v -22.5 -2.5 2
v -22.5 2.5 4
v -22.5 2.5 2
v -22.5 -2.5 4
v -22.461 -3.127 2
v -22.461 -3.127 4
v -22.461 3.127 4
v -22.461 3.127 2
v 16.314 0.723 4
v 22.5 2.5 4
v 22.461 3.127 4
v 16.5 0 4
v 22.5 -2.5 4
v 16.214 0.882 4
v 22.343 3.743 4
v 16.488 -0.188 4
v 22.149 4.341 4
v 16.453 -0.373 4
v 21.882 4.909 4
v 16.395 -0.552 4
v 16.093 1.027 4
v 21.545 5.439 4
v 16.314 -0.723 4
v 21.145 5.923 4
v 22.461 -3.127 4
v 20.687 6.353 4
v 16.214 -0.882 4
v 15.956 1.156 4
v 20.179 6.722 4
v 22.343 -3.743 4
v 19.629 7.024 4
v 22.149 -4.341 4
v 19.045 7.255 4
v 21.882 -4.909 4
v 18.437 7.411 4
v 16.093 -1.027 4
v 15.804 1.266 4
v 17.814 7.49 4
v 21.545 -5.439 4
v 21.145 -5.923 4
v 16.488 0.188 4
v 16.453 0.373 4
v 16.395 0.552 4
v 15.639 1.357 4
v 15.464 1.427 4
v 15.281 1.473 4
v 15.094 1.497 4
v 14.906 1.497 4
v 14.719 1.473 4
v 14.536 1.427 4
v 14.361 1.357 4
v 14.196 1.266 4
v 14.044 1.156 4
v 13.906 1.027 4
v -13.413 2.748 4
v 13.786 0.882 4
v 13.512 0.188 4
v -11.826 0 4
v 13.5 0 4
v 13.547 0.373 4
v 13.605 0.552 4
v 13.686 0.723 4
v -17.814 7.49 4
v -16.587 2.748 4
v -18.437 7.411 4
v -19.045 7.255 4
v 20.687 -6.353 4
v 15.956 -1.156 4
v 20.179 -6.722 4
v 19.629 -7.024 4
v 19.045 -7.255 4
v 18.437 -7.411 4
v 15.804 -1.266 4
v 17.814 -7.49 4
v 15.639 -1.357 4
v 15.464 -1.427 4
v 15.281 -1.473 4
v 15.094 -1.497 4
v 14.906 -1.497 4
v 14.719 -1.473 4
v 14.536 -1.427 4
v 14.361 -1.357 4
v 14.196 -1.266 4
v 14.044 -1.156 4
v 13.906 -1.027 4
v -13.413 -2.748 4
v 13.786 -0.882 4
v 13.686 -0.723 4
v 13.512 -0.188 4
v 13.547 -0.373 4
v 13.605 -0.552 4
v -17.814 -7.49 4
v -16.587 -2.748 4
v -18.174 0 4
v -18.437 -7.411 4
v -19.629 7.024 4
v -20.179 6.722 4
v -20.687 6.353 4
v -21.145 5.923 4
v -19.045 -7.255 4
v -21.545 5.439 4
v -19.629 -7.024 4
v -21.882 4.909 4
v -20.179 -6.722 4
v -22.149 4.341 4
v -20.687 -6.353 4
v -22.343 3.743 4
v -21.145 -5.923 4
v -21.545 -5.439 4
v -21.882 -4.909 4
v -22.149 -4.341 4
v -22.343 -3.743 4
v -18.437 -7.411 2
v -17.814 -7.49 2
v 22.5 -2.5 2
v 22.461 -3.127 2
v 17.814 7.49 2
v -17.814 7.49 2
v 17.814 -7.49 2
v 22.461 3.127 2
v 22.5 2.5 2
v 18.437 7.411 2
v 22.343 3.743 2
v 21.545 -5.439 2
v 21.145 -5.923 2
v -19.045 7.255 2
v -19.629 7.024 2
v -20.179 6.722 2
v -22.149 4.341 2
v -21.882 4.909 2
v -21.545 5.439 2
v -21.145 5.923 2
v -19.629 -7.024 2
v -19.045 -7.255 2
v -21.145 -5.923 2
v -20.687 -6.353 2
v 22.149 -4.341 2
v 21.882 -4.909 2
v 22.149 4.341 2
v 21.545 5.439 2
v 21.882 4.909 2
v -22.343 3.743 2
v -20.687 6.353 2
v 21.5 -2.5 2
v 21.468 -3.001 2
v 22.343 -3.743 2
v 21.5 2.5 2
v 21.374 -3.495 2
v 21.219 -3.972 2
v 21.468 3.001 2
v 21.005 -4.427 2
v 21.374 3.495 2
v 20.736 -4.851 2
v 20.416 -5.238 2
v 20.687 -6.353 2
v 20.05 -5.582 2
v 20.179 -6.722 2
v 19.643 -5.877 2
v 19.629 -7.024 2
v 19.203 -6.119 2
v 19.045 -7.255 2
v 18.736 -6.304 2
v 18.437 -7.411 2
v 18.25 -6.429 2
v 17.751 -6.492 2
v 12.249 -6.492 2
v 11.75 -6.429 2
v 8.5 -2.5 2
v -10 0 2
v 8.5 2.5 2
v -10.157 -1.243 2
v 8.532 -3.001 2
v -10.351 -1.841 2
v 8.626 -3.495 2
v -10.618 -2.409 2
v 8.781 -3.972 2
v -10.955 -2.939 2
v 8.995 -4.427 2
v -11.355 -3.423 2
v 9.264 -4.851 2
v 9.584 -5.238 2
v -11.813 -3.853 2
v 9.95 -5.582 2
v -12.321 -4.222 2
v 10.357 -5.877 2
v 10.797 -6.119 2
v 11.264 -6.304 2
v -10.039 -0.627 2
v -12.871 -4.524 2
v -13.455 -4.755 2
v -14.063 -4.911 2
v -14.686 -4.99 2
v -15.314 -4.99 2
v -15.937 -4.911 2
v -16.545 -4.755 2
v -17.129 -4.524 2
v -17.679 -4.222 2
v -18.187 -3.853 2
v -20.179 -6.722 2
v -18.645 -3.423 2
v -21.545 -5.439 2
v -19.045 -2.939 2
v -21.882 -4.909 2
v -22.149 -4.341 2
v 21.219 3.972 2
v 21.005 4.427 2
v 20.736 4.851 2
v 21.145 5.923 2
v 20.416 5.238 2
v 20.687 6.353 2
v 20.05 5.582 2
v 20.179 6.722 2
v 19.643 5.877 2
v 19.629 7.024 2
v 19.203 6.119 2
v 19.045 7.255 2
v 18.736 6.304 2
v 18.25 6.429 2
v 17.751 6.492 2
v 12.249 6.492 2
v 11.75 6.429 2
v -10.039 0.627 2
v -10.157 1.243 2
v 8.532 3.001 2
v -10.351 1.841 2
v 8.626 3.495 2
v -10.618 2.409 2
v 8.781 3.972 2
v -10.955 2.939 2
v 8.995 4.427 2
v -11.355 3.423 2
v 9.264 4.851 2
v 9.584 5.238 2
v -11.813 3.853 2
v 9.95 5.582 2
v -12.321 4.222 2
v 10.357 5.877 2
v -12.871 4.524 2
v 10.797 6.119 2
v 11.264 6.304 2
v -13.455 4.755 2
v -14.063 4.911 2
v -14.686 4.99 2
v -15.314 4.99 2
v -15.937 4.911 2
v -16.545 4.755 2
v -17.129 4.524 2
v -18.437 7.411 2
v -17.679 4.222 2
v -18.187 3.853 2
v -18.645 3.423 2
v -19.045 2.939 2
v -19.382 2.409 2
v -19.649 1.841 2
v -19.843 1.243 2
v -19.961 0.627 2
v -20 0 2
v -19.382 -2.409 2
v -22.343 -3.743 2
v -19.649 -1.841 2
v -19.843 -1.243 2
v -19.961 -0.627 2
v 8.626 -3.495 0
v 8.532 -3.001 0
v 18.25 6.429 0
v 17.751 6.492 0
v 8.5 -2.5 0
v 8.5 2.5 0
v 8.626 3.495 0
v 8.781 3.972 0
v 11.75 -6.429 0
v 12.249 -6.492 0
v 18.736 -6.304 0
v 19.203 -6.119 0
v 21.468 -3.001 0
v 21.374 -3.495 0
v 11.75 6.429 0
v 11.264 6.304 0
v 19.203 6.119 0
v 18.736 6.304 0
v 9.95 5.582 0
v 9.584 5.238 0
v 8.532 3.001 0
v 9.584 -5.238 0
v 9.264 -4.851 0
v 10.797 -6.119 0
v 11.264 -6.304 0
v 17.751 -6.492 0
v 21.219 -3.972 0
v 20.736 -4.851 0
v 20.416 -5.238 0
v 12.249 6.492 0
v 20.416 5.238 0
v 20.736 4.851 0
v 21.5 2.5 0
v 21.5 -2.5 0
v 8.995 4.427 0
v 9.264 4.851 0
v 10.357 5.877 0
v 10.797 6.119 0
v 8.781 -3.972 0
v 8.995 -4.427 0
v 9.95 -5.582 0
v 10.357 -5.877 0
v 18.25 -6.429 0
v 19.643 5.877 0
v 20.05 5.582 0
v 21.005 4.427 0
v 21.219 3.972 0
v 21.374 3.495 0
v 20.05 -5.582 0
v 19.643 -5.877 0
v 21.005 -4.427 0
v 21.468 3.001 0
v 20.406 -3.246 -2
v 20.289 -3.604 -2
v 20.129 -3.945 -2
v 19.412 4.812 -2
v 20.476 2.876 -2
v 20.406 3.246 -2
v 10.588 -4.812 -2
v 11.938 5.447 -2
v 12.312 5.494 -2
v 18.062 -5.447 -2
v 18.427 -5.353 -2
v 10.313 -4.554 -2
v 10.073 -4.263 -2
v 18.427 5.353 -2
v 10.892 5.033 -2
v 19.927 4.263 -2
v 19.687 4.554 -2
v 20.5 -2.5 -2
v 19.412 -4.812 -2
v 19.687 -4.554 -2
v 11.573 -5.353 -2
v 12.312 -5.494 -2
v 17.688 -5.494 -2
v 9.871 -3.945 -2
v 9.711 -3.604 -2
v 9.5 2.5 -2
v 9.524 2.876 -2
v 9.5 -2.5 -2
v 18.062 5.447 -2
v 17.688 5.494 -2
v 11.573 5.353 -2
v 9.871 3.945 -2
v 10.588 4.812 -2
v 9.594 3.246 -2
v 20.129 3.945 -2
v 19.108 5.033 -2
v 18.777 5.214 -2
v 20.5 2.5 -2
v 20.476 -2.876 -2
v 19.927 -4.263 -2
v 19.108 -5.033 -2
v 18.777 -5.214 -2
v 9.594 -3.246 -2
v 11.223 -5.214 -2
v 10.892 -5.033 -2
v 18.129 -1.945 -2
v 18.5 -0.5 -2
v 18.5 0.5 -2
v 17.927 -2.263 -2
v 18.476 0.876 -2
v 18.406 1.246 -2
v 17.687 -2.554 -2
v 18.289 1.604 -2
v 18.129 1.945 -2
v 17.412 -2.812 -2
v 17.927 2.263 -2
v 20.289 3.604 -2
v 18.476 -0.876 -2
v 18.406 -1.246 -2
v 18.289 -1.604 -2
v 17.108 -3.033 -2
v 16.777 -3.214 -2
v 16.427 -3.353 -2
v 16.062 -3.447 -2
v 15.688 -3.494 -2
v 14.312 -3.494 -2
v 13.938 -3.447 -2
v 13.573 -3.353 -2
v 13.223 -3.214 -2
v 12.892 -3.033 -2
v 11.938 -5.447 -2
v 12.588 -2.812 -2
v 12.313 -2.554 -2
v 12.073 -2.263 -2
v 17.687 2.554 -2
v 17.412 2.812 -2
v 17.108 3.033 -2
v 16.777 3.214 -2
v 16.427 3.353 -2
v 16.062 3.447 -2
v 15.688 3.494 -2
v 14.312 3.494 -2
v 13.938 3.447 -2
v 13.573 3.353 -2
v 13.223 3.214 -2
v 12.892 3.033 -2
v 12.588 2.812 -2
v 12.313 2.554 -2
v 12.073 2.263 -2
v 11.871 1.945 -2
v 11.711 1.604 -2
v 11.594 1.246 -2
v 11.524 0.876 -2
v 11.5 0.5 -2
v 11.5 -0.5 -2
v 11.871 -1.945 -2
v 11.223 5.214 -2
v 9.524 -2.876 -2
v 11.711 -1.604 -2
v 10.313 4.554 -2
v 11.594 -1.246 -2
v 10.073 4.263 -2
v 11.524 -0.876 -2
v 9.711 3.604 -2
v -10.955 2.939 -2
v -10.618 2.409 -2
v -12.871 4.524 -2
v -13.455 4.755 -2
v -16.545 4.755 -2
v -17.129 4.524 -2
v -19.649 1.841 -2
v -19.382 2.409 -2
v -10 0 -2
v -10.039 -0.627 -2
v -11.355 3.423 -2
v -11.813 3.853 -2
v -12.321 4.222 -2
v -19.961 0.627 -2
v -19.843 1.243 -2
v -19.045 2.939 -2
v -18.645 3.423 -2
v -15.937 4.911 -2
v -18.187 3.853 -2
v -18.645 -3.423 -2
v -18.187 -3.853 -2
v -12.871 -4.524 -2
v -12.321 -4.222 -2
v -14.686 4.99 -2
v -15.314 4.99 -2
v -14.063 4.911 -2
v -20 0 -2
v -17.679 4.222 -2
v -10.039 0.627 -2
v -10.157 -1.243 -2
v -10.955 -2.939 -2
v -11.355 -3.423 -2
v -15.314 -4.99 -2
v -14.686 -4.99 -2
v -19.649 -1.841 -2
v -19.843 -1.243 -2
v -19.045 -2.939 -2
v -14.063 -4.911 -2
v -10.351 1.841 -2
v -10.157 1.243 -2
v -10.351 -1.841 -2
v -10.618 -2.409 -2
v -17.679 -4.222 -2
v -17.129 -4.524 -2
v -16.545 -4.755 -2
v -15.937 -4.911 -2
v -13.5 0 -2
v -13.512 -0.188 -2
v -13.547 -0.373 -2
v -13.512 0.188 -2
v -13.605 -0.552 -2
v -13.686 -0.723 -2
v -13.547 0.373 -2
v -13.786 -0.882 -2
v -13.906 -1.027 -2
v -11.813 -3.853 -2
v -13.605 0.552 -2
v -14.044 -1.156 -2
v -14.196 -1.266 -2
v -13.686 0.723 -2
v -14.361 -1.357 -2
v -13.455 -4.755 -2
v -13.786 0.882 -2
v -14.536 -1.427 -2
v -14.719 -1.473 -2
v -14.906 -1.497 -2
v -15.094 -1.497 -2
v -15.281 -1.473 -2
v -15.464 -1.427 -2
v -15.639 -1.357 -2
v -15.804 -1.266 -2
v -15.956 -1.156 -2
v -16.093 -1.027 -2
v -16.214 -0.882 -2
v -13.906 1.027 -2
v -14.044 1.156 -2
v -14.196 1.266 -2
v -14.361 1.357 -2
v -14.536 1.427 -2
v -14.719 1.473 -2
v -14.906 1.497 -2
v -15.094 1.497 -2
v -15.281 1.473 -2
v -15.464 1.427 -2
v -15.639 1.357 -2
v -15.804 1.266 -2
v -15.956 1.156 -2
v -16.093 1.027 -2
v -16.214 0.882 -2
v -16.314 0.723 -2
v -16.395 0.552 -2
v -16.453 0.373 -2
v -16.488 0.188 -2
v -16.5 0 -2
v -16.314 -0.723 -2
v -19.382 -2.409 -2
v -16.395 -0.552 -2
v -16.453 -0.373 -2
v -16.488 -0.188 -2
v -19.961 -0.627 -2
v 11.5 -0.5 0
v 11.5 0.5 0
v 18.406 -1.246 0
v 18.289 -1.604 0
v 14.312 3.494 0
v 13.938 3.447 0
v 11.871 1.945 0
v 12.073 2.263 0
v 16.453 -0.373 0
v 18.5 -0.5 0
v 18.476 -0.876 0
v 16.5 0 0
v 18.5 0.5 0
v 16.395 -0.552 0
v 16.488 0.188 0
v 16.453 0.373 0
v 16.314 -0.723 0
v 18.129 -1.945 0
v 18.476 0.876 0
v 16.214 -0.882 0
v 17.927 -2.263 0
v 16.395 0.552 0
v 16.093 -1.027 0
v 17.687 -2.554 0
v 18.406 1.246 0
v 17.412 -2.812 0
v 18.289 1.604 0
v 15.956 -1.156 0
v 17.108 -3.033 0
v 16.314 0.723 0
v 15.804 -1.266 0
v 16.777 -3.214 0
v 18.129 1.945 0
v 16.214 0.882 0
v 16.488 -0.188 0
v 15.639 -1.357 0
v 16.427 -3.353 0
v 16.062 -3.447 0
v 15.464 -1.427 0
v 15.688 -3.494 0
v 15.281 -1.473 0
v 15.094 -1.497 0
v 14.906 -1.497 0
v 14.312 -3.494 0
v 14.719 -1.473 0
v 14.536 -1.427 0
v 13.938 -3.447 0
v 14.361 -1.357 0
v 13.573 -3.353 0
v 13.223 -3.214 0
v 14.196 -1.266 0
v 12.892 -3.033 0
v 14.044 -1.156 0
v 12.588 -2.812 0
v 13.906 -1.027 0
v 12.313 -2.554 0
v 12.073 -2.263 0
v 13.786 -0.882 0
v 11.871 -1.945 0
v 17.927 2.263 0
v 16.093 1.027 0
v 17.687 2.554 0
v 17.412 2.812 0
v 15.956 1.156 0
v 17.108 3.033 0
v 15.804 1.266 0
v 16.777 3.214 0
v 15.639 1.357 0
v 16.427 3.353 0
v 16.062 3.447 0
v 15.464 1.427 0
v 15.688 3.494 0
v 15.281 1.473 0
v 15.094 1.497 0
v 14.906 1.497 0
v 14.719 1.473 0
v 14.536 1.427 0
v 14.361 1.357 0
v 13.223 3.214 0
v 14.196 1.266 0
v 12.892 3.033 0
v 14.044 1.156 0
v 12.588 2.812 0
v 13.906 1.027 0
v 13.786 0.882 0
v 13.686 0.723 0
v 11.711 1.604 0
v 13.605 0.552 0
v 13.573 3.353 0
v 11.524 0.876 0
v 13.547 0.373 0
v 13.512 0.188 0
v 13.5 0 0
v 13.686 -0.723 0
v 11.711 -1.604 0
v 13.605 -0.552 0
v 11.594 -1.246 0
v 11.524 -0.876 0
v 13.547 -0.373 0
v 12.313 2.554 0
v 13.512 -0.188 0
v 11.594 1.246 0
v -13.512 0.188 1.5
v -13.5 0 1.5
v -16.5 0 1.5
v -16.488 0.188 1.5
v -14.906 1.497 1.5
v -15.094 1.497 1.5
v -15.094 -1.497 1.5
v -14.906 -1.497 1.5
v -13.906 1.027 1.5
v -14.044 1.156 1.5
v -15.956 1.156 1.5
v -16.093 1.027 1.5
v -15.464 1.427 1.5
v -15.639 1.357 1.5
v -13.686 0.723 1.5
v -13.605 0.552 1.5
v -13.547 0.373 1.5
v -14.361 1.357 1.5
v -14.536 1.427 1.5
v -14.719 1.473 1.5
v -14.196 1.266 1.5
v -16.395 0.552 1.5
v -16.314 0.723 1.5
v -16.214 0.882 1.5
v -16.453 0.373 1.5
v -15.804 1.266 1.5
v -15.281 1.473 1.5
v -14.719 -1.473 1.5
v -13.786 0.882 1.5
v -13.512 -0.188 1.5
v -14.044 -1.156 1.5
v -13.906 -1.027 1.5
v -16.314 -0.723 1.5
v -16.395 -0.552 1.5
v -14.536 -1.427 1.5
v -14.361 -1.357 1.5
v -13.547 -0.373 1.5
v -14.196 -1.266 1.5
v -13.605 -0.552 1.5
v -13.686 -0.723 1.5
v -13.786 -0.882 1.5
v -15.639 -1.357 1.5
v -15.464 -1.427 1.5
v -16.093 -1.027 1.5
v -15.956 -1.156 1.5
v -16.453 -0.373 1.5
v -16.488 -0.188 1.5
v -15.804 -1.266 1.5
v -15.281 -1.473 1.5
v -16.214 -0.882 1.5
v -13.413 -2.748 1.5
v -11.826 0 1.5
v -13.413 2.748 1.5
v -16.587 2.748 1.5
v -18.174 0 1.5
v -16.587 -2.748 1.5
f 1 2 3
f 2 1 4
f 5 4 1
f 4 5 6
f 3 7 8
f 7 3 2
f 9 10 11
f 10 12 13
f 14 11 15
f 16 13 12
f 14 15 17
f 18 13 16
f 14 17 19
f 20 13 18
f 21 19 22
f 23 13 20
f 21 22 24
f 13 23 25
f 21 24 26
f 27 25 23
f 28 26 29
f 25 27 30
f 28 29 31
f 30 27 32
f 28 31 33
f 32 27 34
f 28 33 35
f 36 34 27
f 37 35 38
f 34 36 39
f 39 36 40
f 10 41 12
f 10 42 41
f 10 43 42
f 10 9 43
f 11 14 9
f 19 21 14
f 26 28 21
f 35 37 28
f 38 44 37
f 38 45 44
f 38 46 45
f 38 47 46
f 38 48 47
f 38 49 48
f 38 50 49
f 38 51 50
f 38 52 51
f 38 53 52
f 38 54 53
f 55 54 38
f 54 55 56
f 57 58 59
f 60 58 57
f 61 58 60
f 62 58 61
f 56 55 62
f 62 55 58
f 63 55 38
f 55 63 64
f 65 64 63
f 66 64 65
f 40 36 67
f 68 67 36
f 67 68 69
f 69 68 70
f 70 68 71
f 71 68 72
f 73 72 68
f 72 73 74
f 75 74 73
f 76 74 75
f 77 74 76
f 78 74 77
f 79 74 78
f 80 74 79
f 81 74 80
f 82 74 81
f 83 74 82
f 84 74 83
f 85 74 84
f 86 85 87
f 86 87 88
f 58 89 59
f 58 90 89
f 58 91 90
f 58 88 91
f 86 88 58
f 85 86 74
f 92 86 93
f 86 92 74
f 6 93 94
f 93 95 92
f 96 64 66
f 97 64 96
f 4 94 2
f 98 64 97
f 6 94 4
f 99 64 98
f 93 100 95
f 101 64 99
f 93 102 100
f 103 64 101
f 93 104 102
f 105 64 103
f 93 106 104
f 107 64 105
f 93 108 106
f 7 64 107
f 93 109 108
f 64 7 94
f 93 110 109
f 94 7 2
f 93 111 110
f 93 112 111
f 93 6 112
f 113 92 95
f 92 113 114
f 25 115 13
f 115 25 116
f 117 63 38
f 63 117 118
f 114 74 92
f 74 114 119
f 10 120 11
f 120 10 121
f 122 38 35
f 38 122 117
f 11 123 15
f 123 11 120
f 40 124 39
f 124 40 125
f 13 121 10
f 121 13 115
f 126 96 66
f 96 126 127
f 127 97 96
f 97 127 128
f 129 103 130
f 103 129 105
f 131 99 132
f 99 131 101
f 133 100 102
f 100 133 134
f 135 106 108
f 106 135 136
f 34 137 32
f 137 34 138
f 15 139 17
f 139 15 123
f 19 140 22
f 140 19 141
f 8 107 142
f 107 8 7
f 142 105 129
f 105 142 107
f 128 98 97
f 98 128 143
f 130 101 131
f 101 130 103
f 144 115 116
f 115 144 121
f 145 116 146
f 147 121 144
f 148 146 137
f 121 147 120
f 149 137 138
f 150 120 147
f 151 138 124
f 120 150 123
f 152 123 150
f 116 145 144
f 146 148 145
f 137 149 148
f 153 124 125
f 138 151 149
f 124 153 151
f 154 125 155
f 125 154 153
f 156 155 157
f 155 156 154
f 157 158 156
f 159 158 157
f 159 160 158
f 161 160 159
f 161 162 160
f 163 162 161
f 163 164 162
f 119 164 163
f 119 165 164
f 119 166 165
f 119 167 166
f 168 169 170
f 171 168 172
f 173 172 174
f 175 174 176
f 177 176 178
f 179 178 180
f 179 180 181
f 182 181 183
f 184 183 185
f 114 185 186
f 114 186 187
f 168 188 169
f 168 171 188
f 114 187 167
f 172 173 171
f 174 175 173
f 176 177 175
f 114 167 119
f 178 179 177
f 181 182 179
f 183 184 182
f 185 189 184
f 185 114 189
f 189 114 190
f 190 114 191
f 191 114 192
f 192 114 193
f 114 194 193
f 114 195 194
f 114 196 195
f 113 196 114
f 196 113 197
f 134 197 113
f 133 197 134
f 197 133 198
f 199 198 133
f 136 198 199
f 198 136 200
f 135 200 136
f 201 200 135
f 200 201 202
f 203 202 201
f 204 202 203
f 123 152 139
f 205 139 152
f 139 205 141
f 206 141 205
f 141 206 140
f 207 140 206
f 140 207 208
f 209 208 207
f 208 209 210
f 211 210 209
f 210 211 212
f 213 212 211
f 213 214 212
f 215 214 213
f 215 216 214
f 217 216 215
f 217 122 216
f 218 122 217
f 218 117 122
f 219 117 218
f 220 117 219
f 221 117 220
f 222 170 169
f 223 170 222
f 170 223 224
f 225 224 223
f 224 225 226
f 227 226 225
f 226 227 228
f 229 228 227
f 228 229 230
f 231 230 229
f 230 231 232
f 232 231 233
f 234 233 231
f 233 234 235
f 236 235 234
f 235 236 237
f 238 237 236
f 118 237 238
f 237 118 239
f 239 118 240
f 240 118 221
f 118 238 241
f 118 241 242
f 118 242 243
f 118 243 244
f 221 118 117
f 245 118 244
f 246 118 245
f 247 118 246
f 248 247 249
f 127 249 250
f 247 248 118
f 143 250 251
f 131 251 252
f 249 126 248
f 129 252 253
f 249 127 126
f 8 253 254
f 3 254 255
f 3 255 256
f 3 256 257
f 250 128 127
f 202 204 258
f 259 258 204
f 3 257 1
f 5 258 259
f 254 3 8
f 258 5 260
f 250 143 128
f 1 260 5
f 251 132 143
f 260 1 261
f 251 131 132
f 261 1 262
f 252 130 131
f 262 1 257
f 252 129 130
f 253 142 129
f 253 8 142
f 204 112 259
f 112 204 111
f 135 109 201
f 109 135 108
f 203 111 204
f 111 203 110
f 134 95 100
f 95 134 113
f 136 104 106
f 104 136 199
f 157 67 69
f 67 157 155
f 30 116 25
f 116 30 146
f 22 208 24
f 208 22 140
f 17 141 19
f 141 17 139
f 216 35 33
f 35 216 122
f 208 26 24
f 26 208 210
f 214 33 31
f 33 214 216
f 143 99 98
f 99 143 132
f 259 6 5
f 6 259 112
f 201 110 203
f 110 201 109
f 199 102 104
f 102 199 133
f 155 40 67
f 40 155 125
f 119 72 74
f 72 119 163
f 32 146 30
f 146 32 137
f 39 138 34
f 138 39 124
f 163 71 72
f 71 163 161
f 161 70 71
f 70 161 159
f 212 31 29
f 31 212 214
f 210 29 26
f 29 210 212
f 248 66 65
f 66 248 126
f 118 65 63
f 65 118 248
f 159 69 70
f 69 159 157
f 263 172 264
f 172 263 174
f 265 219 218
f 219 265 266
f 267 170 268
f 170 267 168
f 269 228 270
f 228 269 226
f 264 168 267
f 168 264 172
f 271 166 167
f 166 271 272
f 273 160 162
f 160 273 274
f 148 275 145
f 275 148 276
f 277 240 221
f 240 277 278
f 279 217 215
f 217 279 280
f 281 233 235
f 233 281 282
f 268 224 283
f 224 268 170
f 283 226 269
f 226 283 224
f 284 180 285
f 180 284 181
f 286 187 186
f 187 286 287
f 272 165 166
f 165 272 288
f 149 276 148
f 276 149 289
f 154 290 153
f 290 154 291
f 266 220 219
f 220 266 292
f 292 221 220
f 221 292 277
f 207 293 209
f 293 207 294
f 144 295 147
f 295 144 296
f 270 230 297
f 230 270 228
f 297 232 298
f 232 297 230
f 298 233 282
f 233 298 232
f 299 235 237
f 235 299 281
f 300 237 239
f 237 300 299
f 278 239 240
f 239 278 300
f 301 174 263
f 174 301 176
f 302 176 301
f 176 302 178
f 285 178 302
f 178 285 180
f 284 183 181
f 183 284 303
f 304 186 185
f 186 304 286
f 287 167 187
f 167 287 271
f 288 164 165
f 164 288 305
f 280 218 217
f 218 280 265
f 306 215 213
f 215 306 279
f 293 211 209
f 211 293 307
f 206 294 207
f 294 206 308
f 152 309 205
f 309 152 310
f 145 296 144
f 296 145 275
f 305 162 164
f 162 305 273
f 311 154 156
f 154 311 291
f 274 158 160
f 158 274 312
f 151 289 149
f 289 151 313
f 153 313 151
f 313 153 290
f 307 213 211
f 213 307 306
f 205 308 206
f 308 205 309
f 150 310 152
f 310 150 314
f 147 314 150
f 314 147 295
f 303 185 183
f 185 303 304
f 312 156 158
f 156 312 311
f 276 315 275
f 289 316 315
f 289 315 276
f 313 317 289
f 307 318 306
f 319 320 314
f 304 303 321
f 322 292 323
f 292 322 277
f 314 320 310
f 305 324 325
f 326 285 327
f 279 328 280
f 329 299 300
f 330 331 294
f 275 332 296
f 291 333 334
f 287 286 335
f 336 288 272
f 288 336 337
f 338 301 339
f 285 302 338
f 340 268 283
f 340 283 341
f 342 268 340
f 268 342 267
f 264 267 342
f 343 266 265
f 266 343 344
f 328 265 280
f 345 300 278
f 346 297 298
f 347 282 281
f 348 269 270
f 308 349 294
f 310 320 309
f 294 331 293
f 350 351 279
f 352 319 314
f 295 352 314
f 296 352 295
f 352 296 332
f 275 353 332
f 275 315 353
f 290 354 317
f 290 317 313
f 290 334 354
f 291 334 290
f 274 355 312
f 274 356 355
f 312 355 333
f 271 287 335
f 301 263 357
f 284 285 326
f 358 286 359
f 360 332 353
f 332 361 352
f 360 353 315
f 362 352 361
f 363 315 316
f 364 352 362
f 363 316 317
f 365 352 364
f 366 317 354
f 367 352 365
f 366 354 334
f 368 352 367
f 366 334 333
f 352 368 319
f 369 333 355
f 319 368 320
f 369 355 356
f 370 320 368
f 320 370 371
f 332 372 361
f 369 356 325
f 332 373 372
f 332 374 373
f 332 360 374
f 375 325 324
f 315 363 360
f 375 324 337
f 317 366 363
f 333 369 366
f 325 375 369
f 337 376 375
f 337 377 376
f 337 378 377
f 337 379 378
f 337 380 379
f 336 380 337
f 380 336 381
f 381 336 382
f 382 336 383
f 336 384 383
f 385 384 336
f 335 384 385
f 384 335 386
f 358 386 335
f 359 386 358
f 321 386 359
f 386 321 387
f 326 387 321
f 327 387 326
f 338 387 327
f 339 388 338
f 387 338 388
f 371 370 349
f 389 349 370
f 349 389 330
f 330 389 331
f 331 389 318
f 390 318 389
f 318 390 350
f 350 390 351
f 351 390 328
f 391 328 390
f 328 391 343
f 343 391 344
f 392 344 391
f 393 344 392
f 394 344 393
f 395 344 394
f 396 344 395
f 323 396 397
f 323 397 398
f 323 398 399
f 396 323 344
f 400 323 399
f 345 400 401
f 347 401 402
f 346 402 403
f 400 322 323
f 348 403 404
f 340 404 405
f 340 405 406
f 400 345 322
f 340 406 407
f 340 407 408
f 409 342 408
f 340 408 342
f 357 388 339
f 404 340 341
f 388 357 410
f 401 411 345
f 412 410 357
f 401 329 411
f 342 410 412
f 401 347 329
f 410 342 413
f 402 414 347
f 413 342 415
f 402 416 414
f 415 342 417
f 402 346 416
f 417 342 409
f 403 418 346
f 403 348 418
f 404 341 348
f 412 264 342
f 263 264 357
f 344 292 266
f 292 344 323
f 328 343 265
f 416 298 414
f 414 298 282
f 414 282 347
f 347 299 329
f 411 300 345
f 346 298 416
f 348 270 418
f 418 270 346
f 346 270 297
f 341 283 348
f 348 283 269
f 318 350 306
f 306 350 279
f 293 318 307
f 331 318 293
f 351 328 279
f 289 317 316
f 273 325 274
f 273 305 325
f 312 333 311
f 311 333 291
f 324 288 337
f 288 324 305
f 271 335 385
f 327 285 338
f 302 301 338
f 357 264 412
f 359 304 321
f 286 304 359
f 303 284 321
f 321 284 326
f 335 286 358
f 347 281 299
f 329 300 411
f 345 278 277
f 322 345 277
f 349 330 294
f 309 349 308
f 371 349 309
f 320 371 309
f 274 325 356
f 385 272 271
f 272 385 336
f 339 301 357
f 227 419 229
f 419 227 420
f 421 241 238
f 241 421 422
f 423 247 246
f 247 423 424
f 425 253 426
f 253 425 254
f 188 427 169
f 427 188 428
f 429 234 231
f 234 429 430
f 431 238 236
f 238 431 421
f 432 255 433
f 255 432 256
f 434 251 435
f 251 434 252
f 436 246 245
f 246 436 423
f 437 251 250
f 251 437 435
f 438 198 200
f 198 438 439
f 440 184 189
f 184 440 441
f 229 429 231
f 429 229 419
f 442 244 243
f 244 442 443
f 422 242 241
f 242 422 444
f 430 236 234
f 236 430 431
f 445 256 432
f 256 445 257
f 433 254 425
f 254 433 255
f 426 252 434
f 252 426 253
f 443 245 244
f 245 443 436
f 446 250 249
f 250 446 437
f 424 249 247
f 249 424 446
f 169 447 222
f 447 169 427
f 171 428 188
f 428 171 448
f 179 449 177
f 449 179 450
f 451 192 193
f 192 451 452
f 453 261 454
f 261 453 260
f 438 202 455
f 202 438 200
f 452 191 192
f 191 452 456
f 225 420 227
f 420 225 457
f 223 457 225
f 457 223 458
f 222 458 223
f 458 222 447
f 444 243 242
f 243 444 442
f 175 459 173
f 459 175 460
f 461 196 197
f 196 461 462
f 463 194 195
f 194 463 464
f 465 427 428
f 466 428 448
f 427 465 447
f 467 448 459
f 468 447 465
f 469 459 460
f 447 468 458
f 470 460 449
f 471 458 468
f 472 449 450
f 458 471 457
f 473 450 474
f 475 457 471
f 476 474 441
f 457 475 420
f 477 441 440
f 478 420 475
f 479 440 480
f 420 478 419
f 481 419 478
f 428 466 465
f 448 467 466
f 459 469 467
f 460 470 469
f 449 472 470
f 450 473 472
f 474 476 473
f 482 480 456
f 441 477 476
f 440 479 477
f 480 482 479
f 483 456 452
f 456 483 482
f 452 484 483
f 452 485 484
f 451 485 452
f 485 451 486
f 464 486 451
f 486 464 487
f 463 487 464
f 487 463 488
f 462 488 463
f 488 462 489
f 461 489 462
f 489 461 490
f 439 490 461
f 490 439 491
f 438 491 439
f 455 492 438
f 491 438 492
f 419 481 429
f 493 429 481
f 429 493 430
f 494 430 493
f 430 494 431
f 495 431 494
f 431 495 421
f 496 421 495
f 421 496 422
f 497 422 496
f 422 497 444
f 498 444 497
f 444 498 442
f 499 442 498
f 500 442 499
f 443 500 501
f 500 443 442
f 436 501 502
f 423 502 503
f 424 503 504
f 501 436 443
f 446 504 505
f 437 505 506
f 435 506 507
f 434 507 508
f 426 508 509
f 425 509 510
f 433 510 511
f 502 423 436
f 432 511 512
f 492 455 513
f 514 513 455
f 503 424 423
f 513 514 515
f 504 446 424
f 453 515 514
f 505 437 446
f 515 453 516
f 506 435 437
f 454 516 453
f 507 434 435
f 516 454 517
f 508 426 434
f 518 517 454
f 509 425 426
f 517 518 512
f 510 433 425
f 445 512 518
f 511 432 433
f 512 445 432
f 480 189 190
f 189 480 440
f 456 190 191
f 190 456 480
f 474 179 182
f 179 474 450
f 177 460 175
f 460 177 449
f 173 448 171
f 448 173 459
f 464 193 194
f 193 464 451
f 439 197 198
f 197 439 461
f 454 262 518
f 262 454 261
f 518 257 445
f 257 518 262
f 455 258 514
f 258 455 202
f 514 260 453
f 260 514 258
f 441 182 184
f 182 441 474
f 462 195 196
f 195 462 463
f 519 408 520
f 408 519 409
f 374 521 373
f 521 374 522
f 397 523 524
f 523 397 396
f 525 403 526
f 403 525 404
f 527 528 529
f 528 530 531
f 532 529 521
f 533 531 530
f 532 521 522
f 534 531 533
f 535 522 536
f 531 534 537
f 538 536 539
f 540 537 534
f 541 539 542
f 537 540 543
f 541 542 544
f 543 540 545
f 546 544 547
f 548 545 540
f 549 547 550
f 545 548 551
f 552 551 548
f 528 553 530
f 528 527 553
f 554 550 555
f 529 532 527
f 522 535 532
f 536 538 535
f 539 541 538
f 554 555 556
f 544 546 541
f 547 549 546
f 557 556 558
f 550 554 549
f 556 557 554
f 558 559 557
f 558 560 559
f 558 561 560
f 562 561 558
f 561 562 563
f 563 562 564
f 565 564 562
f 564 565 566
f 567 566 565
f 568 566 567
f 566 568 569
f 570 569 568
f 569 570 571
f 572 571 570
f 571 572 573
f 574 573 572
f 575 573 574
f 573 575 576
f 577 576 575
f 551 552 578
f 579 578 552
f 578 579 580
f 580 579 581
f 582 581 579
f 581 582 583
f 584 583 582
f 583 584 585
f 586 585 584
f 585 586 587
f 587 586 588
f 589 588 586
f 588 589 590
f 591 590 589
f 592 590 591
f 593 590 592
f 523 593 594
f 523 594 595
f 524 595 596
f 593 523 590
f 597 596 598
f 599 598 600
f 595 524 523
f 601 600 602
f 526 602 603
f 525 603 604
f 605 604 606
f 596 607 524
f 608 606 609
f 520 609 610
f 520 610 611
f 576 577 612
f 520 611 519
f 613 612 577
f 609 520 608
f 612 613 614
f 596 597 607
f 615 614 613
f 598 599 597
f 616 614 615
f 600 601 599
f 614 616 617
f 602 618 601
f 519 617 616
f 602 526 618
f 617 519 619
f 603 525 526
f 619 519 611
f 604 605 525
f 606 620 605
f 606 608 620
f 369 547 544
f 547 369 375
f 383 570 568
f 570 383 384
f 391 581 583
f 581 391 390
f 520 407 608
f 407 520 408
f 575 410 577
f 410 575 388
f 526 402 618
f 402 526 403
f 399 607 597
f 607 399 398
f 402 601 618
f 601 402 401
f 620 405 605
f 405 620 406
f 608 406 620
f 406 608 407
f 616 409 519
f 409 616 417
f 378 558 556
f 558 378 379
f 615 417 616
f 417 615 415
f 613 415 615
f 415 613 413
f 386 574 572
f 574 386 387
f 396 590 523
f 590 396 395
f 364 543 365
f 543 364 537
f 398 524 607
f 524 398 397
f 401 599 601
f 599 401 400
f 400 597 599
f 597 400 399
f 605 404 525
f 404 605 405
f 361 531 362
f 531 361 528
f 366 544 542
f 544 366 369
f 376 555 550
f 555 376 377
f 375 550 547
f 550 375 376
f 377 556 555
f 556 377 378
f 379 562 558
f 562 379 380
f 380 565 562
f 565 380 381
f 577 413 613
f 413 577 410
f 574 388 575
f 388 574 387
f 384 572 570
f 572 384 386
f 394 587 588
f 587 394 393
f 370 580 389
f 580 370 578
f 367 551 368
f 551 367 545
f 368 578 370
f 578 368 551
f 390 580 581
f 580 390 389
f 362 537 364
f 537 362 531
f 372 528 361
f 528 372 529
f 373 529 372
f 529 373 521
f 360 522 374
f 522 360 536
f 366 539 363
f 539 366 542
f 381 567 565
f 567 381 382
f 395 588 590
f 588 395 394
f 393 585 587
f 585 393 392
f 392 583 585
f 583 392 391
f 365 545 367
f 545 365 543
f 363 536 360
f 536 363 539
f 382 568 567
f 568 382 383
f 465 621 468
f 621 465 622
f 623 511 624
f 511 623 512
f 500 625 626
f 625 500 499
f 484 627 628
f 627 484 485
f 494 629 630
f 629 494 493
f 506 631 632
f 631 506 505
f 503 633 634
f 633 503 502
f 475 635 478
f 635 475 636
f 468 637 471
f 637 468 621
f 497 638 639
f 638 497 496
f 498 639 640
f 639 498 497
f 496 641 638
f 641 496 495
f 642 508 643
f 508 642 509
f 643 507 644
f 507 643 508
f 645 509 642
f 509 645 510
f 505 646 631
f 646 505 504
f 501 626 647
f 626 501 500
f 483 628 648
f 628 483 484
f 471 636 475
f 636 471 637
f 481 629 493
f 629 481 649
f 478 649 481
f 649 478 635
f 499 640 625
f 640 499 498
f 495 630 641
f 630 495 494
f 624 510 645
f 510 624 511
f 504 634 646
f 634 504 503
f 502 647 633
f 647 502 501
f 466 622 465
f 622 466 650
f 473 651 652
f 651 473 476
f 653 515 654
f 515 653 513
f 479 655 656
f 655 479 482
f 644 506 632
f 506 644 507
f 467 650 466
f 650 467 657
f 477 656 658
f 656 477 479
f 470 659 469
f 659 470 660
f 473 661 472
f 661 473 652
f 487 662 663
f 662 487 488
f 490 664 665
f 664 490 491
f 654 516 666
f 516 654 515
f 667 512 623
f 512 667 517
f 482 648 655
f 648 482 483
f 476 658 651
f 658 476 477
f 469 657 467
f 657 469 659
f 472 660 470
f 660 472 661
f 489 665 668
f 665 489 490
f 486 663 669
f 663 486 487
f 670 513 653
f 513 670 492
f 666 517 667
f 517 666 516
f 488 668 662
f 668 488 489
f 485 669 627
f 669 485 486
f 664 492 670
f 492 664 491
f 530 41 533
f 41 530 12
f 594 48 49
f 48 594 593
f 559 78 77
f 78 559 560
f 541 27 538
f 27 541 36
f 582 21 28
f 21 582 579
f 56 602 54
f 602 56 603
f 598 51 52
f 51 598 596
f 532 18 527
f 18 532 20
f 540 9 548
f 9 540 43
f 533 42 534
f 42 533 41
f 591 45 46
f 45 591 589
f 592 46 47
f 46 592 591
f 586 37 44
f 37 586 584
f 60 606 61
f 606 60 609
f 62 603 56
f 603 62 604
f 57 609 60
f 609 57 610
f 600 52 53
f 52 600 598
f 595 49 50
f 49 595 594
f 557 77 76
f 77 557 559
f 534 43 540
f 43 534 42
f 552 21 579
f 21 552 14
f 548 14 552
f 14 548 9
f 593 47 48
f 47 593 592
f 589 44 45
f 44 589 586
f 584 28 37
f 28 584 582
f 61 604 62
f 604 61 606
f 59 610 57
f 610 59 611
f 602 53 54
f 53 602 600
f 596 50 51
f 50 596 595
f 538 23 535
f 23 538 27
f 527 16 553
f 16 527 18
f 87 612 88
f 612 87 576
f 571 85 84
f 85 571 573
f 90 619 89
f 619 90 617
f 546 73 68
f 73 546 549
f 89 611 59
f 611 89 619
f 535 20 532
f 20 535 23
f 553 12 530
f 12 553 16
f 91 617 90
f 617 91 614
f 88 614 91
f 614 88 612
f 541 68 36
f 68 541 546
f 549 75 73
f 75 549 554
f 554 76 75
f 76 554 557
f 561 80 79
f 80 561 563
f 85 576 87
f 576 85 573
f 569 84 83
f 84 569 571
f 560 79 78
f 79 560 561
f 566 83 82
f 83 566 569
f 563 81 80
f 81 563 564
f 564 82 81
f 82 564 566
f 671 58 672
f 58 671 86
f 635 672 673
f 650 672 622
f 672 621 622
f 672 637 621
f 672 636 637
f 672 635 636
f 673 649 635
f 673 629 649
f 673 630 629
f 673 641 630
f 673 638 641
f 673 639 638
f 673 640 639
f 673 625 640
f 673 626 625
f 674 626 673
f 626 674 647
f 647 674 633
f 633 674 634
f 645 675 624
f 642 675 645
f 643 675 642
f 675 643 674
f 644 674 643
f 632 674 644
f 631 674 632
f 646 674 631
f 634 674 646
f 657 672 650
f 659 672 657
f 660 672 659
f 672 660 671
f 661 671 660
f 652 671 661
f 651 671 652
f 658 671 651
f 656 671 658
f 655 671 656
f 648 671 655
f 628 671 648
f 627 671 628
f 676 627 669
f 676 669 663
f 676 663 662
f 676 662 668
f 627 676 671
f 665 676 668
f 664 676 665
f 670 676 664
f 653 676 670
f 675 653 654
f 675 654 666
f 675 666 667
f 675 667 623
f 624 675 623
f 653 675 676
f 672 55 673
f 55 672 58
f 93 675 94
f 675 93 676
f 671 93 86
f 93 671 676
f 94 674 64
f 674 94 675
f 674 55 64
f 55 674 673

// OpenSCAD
$fn = 50;


difference() {
	union() {
		translate(v = [0, 0, 2]) {
			rotate(a = [0, 0, 0]) {
				hull() {
					translate(v = [-17.5000000000, 2.5000000000, 0]) {
						rotate(a = [0, 0, 0]) {
							translate(v = [0, 0, 0]) {
								rotate(a = [0, 0, 0]) {
									cylinder(h = 2, r = 5);
								}
							}
						}
					}
					translate(v = [17.5000000000, 2.5000000000, 0]) {
						rotate(a = [0, 0, 0]) {
							translate(v = [0, 0, 0]) {
								rotate(a = [0, 0, 0]) {
									cylinder(h = 2, r = 5);
								}
							}
						}
					}
					translate(v = [-17.5000000000, -2.5000000000, 0]) {
						rotate(a = [0, 0, 0]) {
							translate(v = [0, 0, 0]) {
								rotate(a = [0, 0, 0]) {
									cylinder(h = 2, r = 5);
								}
							}
						}
					}
					translate(v = [17.5000000000, -2.5000000000, 0]) {
						rotate(a = [0, 0, 0]) {
							translate(v = [0, 0, 0]) {
								rotate(a = [0, 0, 0]) {
									cylinder(h = 2, r = 5);
								}
							}
						}
					}
				}
			}
		}
		translate(v = [15.0000000000, 0.0000000000, 0]) {
			rotate(a = [0, 0, 0]) {
				hull() {
					translate(v = [-2.5000000000, 2.5000000000, 0]) {
						rotate(a = [0, 0, 0]) {
							cylinder(h = 2, r1 = 4.0000000000, r2 = 4.0000000000);
						}
					}
					translate(v = [2.5000000000, 2.5000000000, 0]) {
						rotate(a = [0, 0, 0]) {
							cylinder(h = 2, r1 = 4.0000000000, r2 = 4.0000000000);
						}
					}
					translate(v = [-2.5000000000, -2.5000000000, 0]) {
						rotate(a = [0, 0, 0]) {
							cylinder(h = 2, r1 = 4.0000000000, r2 = 4.0000000000);
						}
					}
					translate(v = [2.5000000000, -2.5000000000, 0]) {
						rotate(a = [0, 0, 0]) {
							cylinder(h = 2, r1 = 4.0000000000, r2 = 4.0000000000);
						}
					}
				}
			}
		}
		translate(v = [15.0000000000, 0.0000000000, -2]) {
			rotate(a = [0, 180, 0]) {
				hull() {
					translate(v = [-2.5000000000, 2.5000000000, 0]) {
						rotate(a = [0, 180, 0]) {
							cylinder(h = 2, r1 = 3.0000000000, r2 = 4.0000000000);
						}
					}
					translate(v = [2.5000000000, 2.5000000000, 0]) {
						rotate(a = [0, 180, 0]) {
							cylinder(h = 2, r1 = 3.0000000000, r2 = 4.0000000000);
						}
					}
					translate(v = [-2.5000000000, -2.5000000000, 0]) {
						rotate(a = [0, 180, 0]) {
							cylinder(h = 2, r1 = 3.0000000000, r2 = 4.0000000000);
						}
					}
					translate(v = [2.5000000000, -2.5000000000, 0]) {
						rotate(a = [0, 180, 0]) {
							cylinder(h = 2, r1 = 3.0000000000, r2 = 4.0000000000);
						}
					}
				}
			}
		}
		translate(v = [-15.0000000000, 0.0000000000, -2.0000000000]) {
			rotate(a = [0, 0, 0]) {
				cylinder(h = 4, r = 5);
			}
		}
	}
	union() {
		translate(v = [15.0000000000, 0.0000000000, -2]) {
			rotate(a = [0, 0, 0]) {
				hull() {
					translate(v = [-0.5000000000, 0.5000000000, 0]) {
						rotate(a = [0, 0, 0]) {
							translate(v = [0, 0, 0]) {
								rotate(a = [0, 0, 0]) {
									cylinder(h = 2, r = 3.0000000000);
								}
							}
						}
					}
					translate(v = [0.5000000000, 0.5000000000, 0]) {
						rotate(a = [0, 0, 0]) {
							translate(v = [0, 0, 0]) {
								rotate(a = [0, 0, 0]) {
									cylinder(h = 2, r = 3.0000000000);
								}
							}
						}
					}
					translate(v = [-0.5000000000, -0.5000000000, 0]) {
						rotate(a = [0, 0, 0]) {
							translate(v = [0, 0, 0]) {
								rotate(a = [0, 0, 0]) {
									cylinder(h = 2, r = 3.0000000000);
								}
							}
						}
					}
					translate(v = [0.5000000000, -0.5000000000, 0]) {
						rotate(a = [0, 0, 0]) {
							translate(v = [0, 0, 0]) {
								rotate(a = [0, 0, 0]) {
									cylinder(h = 2, r = 3.0000000000);
								}
							}
						}
					}
				}
			}
		}
		translate(v = [-15.0000000000, 0.0000000000, -50]) {
			rotate(a = [0, 0, 0]) {
				cylinder(h = 100, r = 1.5000000000);
			}
		}
		translate(v = [15.0000000000, 0.0000000000, -50]) {
			rotate(a = [0, 0, 0]) {
				cylinder(h = 100, r = 1.5000000000);
			}
		}
		translate(v = [-15.0000000000, 0.0000000000, -50]) {
			rotate(a = [0, 0, 0]) {
				cylinder(h = 100, r = 1.5000000000);
			}
		}
		translate(v = [15.0000000000, 0.0000000000, -50]) {
			rotate(a = [0, 0, 0]) {
				cylinder(h = 100, r = 1.5000000000);
			}
		}
		translate(v = [-15.0000000000, 0.0000000000, 1.5000000000]) {
			rotate(a = [0, 0, 0]) {
				#translate(v = [0, 0, 0]) {
					rotate(a = [0, 0, 0]) {
						linear_extrude(height = 2.5000000000) {
							polygon(points = [[3.1735000000, 0.0000000000], [1.5867500000, 2.7483316189], [-1.5867500000, 2.7483316189], [-3.1735000000, 0.0000000000], [-1.5867500000, -2.7483316189], [1.5867500000, -2.7483316189]]);
						}
					}
				}
			}
		}
	}
}
